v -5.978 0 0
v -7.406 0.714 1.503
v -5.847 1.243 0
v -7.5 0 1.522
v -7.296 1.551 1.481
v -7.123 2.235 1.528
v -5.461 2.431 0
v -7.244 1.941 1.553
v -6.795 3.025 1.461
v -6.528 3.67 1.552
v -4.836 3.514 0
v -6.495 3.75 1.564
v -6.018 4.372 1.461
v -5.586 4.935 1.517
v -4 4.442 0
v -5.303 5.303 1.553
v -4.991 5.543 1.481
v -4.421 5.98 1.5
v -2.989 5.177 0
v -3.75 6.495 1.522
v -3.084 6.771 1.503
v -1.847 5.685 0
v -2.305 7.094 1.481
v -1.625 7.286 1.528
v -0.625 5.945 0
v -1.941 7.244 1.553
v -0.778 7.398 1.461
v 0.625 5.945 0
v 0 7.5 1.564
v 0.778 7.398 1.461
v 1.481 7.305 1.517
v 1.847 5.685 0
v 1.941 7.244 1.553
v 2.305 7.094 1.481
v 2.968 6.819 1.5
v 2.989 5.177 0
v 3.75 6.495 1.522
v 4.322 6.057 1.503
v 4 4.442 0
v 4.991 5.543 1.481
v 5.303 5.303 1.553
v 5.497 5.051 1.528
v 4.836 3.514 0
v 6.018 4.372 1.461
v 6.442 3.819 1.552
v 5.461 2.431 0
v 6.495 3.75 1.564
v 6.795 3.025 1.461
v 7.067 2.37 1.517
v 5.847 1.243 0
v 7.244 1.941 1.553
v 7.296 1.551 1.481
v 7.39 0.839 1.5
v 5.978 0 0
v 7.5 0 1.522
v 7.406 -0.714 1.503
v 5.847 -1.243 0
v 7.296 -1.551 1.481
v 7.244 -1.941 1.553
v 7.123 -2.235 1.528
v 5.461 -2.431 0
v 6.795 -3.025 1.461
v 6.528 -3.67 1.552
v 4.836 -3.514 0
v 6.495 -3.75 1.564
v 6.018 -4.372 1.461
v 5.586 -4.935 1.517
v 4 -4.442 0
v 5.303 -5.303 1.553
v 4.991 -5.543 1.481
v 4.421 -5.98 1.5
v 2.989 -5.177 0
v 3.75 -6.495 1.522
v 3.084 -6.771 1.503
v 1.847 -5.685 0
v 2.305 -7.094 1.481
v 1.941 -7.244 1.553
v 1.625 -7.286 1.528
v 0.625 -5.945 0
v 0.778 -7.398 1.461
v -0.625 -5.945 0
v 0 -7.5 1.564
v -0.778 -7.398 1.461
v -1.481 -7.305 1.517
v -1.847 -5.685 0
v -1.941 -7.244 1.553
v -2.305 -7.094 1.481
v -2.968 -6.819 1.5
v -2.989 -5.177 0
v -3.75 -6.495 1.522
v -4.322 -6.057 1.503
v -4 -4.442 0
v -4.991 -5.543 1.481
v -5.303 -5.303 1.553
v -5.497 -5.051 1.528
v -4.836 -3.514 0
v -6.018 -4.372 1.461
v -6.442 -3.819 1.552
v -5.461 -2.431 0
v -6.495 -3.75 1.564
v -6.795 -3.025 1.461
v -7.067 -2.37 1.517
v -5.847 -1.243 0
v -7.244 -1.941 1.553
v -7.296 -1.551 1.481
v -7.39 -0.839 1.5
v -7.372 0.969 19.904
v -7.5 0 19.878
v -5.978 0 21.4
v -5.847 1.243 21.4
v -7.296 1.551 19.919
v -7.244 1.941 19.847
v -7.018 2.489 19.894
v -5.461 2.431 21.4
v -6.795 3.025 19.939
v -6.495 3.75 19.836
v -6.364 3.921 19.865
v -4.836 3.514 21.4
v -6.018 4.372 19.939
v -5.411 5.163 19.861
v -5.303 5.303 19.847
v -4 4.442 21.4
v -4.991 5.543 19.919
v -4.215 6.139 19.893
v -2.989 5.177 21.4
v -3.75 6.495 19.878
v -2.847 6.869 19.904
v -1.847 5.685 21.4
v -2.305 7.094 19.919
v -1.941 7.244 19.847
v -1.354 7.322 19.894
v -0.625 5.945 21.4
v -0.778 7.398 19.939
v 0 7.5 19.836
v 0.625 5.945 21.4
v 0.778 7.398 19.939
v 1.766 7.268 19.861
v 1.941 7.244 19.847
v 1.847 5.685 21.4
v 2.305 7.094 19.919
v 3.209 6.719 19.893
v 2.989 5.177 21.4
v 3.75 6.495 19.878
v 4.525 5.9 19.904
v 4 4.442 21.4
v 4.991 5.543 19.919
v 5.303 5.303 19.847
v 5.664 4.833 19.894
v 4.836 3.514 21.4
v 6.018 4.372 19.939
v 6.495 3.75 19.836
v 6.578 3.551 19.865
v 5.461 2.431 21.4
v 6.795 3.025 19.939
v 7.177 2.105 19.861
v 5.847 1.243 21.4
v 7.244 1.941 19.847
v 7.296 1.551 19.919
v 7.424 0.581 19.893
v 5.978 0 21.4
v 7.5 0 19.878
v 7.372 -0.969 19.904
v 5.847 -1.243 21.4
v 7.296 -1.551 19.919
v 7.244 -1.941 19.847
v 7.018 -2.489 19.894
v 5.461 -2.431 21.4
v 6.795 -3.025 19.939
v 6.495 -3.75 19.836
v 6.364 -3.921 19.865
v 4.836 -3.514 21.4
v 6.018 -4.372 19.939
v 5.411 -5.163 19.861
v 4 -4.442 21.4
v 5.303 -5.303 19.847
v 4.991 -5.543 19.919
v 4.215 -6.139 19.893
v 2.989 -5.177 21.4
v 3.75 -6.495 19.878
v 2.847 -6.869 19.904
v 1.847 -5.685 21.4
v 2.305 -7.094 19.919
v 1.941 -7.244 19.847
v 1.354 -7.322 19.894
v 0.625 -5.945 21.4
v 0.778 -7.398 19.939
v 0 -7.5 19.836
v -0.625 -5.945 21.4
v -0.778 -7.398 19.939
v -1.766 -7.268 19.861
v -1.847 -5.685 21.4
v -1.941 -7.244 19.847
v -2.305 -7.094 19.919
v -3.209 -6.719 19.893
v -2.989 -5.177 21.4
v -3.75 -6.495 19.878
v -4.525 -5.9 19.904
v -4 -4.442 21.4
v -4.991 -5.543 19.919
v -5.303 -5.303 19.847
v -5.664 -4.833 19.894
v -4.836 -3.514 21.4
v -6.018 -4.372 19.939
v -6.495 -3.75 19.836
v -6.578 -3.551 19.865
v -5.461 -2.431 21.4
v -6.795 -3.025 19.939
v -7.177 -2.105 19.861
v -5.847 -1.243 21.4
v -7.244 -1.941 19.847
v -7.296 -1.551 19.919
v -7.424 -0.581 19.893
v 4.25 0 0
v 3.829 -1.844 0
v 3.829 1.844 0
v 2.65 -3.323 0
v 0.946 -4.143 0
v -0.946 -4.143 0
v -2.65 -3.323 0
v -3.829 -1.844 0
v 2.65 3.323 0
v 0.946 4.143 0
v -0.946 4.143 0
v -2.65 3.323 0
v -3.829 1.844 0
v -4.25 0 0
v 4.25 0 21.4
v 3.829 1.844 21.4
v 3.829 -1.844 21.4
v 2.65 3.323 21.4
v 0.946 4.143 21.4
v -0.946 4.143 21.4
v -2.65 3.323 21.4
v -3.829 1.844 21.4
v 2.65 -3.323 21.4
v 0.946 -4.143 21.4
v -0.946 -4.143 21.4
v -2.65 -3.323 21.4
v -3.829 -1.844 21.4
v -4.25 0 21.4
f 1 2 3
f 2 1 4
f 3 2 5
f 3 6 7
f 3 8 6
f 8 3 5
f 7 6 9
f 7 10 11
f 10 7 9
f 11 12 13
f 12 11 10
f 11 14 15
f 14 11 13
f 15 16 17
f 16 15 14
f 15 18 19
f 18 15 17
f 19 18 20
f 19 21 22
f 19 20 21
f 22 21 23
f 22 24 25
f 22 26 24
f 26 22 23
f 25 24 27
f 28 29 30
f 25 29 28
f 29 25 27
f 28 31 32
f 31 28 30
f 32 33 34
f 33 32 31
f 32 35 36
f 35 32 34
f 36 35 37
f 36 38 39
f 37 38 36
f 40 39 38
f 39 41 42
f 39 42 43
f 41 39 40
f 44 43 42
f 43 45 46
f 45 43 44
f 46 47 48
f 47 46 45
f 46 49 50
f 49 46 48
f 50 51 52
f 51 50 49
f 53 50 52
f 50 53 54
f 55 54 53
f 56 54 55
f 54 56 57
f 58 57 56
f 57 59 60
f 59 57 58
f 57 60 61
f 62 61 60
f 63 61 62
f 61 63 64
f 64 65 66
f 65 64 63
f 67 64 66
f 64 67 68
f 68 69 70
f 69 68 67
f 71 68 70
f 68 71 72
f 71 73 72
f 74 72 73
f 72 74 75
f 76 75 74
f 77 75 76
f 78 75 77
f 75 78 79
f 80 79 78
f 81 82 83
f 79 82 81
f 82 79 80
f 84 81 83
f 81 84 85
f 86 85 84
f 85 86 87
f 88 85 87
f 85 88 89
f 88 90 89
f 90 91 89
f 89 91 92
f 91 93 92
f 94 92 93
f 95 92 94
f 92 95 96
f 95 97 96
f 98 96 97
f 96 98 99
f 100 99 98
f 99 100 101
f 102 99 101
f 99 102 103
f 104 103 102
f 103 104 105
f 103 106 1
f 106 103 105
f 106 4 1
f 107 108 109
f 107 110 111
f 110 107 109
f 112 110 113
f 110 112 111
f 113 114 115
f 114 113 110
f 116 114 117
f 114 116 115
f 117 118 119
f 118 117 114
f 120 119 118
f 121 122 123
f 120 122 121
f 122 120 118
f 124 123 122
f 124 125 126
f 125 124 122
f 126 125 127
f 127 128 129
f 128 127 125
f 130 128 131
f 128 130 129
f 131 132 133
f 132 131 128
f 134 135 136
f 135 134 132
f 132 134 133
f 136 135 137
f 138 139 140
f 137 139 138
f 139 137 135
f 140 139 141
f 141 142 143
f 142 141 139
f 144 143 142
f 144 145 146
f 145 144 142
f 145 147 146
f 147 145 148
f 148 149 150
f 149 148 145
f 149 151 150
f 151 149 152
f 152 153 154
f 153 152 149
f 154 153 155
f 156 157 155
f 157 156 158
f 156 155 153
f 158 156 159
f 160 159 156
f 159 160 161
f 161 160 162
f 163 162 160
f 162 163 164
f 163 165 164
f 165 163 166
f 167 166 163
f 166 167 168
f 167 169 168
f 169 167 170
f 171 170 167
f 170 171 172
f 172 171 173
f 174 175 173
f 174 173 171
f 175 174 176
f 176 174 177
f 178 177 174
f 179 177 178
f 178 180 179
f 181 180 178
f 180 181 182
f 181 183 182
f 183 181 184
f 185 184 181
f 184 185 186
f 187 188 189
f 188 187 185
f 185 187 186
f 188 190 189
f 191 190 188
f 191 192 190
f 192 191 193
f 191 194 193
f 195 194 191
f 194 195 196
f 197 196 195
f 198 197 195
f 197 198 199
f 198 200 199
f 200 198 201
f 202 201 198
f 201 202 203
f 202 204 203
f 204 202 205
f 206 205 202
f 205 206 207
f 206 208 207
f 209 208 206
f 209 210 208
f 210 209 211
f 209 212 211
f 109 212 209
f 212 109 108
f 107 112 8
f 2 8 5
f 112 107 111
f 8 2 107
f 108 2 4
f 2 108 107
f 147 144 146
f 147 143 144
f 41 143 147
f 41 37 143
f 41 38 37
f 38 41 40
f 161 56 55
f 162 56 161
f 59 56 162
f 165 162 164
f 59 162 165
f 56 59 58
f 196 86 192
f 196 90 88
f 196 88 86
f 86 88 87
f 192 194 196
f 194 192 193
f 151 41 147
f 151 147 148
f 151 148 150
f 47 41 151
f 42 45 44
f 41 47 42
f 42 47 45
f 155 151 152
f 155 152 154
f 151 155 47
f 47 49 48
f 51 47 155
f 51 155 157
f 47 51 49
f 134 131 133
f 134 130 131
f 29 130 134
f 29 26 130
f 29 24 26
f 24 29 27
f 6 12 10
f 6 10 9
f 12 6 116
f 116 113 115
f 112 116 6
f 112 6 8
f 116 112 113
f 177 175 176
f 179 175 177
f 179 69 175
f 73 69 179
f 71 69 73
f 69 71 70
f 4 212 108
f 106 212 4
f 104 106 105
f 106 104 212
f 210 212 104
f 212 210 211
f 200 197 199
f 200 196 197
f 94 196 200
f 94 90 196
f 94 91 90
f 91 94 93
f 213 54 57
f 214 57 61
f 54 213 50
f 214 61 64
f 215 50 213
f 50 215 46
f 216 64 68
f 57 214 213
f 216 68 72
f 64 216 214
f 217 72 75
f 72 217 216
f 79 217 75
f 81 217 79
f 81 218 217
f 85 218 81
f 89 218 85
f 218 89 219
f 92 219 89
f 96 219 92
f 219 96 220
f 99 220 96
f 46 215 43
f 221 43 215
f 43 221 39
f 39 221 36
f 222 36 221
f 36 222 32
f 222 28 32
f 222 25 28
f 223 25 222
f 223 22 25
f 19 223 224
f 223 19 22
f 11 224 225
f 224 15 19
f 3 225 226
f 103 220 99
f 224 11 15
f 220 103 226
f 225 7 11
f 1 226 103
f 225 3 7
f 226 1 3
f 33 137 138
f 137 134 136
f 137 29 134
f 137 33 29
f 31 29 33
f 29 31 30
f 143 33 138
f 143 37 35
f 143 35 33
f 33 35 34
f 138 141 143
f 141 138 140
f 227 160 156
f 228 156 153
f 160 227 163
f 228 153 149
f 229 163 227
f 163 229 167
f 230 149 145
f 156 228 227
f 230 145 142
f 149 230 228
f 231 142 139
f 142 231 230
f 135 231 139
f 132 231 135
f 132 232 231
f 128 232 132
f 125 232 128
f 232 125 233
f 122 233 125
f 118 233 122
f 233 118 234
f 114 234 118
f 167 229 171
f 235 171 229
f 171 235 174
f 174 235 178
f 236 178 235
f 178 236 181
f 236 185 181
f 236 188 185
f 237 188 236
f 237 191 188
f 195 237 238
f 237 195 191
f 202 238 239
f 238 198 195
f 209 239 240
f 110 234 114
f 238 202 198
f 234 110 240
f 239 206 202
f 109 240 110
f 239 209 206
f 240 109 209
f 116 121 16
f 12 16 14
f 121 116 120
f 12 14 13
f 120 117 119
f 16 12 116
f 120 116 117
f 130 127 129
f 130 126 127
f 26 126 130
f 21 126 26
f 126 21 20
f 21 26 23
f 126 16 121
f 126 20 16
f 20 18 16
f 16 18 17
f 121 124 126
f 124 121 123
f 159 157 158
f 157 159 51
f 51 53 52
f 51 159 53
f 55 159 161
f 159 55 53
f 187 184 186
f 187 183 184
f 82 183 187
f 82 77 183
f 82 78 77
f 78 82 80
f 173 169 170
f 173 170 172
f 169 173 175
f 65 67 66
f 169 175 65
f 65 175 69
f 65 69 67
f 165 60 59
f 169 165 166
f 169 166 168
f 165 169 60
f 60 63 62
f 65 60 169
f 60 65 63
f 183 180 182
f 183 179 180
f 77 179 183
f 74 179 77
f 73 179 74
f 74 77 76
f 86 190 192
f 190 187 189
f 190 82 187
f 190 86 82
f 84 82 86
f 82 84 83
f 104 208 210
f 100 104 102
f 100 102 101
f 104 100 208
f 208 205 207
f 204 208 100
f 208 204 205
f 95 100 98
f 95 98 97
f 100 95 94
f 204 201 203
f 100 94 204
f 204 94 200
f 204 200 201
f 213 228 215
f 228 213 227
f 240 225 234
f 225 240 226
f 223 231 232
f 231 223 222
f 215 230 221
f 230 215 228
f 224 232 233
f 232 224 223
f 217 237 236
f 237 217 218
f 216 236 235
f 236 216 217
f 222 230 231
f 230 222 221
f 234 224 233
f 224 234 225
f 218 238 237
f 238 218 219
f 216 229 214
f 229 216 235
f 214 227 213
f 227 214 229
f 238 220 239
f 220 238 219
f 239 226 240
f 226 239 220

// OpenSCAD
// file: parameters.scad
// Parameters shared between modules
Base_th = 4;
Beam_width = 15;
Wiggle = 0.25;
Fat_beam_width = Beam_width + Wiggle;
Beam_length = 400;
Wall_th = 2.5;
Min_beam_width = 12.5;
Max_beam_width = 17.5;
Zip_th = 2;
Zip_h = Zip_th + Max_beam_width - Min_beam_width;
Zip_w = 5.0;
Nema17_cube_width          = 42.43;
Nema17_screw_hole_width    = 43.74; // Opposite corner screws
Nema17_ring_diameter       = 22;
Nema17_cube_height         = 39.36;
Nema17_shaft_height        = 63.65;
Nema17_ring_height         = 2;
Nema17_shaft_radius        = 5/2;
b608_outer_dia = 22.2;
b608_width = 7.05;
b608_bore_r = 4;
Gap_between_sandwich_and_plate = 1.5 + Base_th; // 1.5 mm for wiggle
Motor_bracket_flerp_r = 6;
Motor_bracket_flerp = 14;
Motor_bracket_cw = Nema17_cube_width + 6;
Motor_bracket_att_ang = 50;
Mounting_screw_d = 4.5;
Mounting_screw_head_d = 14;
Spool_outer_wall_th = 4;

// Corner clamp parameters
Cc_l1 = (Fat_beam_width+2*Wall_th)*2*sqrt(3);
Cc_rad_b = 4;
Cc_action_point_from_mid = Cc_l1/sqrt(3)-2*Cc_rad_b-1.3;  // 1.3 chosen arbitrarily
Cc_plastic_length = sqrt(Cc_action_point_from_mid*Cc_action_point_from_mid
                       - (Cc_action_point_from_mid/2)*(Cc_action_point_from_mid/2));

// The distance between the two action points on the mover
Sidelength = Beam_length + 2*Cc_plastic_length;

/////// Gear parameters ////////////
Circular_pitch = 262;
Motor_teeth = 10;
Gear_height = 21.4-3;
Motor_pitch                      = (Motor_teeth*Circular_pitch/360);
Motor_pitch_diametrial           = Motor_teeth/(2*Motor_pitch);
Motor_outer_radius               = Motor_pitch + 1/Motor_pitch_diametrial;
Spool_teeth = 100;
Spool_r = 65;
Spool_height = 8;
Spool_pitch                      = (Spool_teeth*Circular_pitch/360);
Spool_pitch_diametrial           = Spool_teeth/(2*Spool_pitch);
Spool_outer_radius               = Spool_pitch + 1/Spool_pitch_diametrial;
Sep_disc_radius = 161.83/2; // Made to match 255 teeth gt2 pulley
Motor_bracket_depth = Gear_height+1+7+Nema17_ring_height+1+Gap_between_sandwich_and_plate;
Spool_core_flerp0 = 16+3;

/////// Lineroller parameters ////////////
b623_width  = 4;
b623_bore_r = 3/2;
b623_vgroove_big_r = 12/2;
b623_vgroove_small_r = 10/2;
b623_outer_dia = 10;

Depth_of_roller_base = 18;
Roller_flerp = 6;
Roller_l = 42;
Roller_fl = (Roller_l - Depth_of_roller_base)/2;

Line_roller_wall_th = 5;

Line_roller_ABC_winch_h =  Gap_between_sandwich_and_plate
                           + Sep_disc_radius
                           - Spool_r
                           + Depth_of_roller_base/2
                           + b623_vgroove_small_r;


Ptfe_r = 2.1;
Roller_base_r = 8;
Screw_h = 2;
Screw_head_h = 2;
Spool_center_bearing_wall_th = 5;
Corner_clamp_bearings_center_to_center = 15;
Anchor_bearings_center_to_center = Corner_clamp_bearings_center_to_center + b623_outer_dia;

//// Lineroller anchor parameters /////

Bearing_wall = 1;
Bearing_0_x = 2*b623_vgroove_big_r+Bearing_wall+5.3;
Bearing_1_x = b623_vgroove_small_r-0.9;
Move_tower = -12.2;
Lower_bearing_z = 13;
Higher_bearing_z = Lower_bearing_z + Corner_clamp_bearings_center_to_center;

//// Cable Clamp parameters /////
Bit_width = 12;
Cable_r=2.5;


//// Donkey and encoder parameters /////

Donkey_shaft_d = 6;
Donkey_h = 65.12;
Donkey_body_d = 50;
Donkey_feet_th = 3.5;

Encoder_LDP3806_shaft_d = 6;
Encoder_LDP3806_d = 38;

// Belt drive parameters
GT2_belt_width = 6.5;
GT2_gear_height = GT2_belt_width + 2;
GT2_motor_gear_height = 16;
GT2_motor_gear_outer_dia = 16;
GT2_spool_gear_teeth = 255;
GT2_motor_gear_teeth = 20;
Torx_depth = GT2_gear_height/2;
Belt_roller_h = 47;

// Spacer parameters
Sandwich_ABC_width = 2*(1+Spool_height) + GT2_gear_height;
Sandwich_D_width = 3*(1+Spool_height) + GT2_gear_height;

Spacer_ABC_width = Sandwich_ABC_width - 2*b608_width;
Spacer_D_width = Sandwich_D_width -2*b608_width;


spd = Spool_height+GT2_gear_height;
// Horizontal_deflector_cube_y_size must be exact this number
// because we want to deflect AB-lines
// 60 degrees on the ceiling unit, and we want to put two
// deflectors in a row and get a distance between bearings
// that maintain the distance d when deflecting 60 degrees
Horizontal_deflector_cube_y_size = (2/sqrt(3))*spd;
// main file
include <parameters.scad>
use <util.scad>

spacer_D();
module spacer_D(){
  spacer(Spacer_D_width);
}
